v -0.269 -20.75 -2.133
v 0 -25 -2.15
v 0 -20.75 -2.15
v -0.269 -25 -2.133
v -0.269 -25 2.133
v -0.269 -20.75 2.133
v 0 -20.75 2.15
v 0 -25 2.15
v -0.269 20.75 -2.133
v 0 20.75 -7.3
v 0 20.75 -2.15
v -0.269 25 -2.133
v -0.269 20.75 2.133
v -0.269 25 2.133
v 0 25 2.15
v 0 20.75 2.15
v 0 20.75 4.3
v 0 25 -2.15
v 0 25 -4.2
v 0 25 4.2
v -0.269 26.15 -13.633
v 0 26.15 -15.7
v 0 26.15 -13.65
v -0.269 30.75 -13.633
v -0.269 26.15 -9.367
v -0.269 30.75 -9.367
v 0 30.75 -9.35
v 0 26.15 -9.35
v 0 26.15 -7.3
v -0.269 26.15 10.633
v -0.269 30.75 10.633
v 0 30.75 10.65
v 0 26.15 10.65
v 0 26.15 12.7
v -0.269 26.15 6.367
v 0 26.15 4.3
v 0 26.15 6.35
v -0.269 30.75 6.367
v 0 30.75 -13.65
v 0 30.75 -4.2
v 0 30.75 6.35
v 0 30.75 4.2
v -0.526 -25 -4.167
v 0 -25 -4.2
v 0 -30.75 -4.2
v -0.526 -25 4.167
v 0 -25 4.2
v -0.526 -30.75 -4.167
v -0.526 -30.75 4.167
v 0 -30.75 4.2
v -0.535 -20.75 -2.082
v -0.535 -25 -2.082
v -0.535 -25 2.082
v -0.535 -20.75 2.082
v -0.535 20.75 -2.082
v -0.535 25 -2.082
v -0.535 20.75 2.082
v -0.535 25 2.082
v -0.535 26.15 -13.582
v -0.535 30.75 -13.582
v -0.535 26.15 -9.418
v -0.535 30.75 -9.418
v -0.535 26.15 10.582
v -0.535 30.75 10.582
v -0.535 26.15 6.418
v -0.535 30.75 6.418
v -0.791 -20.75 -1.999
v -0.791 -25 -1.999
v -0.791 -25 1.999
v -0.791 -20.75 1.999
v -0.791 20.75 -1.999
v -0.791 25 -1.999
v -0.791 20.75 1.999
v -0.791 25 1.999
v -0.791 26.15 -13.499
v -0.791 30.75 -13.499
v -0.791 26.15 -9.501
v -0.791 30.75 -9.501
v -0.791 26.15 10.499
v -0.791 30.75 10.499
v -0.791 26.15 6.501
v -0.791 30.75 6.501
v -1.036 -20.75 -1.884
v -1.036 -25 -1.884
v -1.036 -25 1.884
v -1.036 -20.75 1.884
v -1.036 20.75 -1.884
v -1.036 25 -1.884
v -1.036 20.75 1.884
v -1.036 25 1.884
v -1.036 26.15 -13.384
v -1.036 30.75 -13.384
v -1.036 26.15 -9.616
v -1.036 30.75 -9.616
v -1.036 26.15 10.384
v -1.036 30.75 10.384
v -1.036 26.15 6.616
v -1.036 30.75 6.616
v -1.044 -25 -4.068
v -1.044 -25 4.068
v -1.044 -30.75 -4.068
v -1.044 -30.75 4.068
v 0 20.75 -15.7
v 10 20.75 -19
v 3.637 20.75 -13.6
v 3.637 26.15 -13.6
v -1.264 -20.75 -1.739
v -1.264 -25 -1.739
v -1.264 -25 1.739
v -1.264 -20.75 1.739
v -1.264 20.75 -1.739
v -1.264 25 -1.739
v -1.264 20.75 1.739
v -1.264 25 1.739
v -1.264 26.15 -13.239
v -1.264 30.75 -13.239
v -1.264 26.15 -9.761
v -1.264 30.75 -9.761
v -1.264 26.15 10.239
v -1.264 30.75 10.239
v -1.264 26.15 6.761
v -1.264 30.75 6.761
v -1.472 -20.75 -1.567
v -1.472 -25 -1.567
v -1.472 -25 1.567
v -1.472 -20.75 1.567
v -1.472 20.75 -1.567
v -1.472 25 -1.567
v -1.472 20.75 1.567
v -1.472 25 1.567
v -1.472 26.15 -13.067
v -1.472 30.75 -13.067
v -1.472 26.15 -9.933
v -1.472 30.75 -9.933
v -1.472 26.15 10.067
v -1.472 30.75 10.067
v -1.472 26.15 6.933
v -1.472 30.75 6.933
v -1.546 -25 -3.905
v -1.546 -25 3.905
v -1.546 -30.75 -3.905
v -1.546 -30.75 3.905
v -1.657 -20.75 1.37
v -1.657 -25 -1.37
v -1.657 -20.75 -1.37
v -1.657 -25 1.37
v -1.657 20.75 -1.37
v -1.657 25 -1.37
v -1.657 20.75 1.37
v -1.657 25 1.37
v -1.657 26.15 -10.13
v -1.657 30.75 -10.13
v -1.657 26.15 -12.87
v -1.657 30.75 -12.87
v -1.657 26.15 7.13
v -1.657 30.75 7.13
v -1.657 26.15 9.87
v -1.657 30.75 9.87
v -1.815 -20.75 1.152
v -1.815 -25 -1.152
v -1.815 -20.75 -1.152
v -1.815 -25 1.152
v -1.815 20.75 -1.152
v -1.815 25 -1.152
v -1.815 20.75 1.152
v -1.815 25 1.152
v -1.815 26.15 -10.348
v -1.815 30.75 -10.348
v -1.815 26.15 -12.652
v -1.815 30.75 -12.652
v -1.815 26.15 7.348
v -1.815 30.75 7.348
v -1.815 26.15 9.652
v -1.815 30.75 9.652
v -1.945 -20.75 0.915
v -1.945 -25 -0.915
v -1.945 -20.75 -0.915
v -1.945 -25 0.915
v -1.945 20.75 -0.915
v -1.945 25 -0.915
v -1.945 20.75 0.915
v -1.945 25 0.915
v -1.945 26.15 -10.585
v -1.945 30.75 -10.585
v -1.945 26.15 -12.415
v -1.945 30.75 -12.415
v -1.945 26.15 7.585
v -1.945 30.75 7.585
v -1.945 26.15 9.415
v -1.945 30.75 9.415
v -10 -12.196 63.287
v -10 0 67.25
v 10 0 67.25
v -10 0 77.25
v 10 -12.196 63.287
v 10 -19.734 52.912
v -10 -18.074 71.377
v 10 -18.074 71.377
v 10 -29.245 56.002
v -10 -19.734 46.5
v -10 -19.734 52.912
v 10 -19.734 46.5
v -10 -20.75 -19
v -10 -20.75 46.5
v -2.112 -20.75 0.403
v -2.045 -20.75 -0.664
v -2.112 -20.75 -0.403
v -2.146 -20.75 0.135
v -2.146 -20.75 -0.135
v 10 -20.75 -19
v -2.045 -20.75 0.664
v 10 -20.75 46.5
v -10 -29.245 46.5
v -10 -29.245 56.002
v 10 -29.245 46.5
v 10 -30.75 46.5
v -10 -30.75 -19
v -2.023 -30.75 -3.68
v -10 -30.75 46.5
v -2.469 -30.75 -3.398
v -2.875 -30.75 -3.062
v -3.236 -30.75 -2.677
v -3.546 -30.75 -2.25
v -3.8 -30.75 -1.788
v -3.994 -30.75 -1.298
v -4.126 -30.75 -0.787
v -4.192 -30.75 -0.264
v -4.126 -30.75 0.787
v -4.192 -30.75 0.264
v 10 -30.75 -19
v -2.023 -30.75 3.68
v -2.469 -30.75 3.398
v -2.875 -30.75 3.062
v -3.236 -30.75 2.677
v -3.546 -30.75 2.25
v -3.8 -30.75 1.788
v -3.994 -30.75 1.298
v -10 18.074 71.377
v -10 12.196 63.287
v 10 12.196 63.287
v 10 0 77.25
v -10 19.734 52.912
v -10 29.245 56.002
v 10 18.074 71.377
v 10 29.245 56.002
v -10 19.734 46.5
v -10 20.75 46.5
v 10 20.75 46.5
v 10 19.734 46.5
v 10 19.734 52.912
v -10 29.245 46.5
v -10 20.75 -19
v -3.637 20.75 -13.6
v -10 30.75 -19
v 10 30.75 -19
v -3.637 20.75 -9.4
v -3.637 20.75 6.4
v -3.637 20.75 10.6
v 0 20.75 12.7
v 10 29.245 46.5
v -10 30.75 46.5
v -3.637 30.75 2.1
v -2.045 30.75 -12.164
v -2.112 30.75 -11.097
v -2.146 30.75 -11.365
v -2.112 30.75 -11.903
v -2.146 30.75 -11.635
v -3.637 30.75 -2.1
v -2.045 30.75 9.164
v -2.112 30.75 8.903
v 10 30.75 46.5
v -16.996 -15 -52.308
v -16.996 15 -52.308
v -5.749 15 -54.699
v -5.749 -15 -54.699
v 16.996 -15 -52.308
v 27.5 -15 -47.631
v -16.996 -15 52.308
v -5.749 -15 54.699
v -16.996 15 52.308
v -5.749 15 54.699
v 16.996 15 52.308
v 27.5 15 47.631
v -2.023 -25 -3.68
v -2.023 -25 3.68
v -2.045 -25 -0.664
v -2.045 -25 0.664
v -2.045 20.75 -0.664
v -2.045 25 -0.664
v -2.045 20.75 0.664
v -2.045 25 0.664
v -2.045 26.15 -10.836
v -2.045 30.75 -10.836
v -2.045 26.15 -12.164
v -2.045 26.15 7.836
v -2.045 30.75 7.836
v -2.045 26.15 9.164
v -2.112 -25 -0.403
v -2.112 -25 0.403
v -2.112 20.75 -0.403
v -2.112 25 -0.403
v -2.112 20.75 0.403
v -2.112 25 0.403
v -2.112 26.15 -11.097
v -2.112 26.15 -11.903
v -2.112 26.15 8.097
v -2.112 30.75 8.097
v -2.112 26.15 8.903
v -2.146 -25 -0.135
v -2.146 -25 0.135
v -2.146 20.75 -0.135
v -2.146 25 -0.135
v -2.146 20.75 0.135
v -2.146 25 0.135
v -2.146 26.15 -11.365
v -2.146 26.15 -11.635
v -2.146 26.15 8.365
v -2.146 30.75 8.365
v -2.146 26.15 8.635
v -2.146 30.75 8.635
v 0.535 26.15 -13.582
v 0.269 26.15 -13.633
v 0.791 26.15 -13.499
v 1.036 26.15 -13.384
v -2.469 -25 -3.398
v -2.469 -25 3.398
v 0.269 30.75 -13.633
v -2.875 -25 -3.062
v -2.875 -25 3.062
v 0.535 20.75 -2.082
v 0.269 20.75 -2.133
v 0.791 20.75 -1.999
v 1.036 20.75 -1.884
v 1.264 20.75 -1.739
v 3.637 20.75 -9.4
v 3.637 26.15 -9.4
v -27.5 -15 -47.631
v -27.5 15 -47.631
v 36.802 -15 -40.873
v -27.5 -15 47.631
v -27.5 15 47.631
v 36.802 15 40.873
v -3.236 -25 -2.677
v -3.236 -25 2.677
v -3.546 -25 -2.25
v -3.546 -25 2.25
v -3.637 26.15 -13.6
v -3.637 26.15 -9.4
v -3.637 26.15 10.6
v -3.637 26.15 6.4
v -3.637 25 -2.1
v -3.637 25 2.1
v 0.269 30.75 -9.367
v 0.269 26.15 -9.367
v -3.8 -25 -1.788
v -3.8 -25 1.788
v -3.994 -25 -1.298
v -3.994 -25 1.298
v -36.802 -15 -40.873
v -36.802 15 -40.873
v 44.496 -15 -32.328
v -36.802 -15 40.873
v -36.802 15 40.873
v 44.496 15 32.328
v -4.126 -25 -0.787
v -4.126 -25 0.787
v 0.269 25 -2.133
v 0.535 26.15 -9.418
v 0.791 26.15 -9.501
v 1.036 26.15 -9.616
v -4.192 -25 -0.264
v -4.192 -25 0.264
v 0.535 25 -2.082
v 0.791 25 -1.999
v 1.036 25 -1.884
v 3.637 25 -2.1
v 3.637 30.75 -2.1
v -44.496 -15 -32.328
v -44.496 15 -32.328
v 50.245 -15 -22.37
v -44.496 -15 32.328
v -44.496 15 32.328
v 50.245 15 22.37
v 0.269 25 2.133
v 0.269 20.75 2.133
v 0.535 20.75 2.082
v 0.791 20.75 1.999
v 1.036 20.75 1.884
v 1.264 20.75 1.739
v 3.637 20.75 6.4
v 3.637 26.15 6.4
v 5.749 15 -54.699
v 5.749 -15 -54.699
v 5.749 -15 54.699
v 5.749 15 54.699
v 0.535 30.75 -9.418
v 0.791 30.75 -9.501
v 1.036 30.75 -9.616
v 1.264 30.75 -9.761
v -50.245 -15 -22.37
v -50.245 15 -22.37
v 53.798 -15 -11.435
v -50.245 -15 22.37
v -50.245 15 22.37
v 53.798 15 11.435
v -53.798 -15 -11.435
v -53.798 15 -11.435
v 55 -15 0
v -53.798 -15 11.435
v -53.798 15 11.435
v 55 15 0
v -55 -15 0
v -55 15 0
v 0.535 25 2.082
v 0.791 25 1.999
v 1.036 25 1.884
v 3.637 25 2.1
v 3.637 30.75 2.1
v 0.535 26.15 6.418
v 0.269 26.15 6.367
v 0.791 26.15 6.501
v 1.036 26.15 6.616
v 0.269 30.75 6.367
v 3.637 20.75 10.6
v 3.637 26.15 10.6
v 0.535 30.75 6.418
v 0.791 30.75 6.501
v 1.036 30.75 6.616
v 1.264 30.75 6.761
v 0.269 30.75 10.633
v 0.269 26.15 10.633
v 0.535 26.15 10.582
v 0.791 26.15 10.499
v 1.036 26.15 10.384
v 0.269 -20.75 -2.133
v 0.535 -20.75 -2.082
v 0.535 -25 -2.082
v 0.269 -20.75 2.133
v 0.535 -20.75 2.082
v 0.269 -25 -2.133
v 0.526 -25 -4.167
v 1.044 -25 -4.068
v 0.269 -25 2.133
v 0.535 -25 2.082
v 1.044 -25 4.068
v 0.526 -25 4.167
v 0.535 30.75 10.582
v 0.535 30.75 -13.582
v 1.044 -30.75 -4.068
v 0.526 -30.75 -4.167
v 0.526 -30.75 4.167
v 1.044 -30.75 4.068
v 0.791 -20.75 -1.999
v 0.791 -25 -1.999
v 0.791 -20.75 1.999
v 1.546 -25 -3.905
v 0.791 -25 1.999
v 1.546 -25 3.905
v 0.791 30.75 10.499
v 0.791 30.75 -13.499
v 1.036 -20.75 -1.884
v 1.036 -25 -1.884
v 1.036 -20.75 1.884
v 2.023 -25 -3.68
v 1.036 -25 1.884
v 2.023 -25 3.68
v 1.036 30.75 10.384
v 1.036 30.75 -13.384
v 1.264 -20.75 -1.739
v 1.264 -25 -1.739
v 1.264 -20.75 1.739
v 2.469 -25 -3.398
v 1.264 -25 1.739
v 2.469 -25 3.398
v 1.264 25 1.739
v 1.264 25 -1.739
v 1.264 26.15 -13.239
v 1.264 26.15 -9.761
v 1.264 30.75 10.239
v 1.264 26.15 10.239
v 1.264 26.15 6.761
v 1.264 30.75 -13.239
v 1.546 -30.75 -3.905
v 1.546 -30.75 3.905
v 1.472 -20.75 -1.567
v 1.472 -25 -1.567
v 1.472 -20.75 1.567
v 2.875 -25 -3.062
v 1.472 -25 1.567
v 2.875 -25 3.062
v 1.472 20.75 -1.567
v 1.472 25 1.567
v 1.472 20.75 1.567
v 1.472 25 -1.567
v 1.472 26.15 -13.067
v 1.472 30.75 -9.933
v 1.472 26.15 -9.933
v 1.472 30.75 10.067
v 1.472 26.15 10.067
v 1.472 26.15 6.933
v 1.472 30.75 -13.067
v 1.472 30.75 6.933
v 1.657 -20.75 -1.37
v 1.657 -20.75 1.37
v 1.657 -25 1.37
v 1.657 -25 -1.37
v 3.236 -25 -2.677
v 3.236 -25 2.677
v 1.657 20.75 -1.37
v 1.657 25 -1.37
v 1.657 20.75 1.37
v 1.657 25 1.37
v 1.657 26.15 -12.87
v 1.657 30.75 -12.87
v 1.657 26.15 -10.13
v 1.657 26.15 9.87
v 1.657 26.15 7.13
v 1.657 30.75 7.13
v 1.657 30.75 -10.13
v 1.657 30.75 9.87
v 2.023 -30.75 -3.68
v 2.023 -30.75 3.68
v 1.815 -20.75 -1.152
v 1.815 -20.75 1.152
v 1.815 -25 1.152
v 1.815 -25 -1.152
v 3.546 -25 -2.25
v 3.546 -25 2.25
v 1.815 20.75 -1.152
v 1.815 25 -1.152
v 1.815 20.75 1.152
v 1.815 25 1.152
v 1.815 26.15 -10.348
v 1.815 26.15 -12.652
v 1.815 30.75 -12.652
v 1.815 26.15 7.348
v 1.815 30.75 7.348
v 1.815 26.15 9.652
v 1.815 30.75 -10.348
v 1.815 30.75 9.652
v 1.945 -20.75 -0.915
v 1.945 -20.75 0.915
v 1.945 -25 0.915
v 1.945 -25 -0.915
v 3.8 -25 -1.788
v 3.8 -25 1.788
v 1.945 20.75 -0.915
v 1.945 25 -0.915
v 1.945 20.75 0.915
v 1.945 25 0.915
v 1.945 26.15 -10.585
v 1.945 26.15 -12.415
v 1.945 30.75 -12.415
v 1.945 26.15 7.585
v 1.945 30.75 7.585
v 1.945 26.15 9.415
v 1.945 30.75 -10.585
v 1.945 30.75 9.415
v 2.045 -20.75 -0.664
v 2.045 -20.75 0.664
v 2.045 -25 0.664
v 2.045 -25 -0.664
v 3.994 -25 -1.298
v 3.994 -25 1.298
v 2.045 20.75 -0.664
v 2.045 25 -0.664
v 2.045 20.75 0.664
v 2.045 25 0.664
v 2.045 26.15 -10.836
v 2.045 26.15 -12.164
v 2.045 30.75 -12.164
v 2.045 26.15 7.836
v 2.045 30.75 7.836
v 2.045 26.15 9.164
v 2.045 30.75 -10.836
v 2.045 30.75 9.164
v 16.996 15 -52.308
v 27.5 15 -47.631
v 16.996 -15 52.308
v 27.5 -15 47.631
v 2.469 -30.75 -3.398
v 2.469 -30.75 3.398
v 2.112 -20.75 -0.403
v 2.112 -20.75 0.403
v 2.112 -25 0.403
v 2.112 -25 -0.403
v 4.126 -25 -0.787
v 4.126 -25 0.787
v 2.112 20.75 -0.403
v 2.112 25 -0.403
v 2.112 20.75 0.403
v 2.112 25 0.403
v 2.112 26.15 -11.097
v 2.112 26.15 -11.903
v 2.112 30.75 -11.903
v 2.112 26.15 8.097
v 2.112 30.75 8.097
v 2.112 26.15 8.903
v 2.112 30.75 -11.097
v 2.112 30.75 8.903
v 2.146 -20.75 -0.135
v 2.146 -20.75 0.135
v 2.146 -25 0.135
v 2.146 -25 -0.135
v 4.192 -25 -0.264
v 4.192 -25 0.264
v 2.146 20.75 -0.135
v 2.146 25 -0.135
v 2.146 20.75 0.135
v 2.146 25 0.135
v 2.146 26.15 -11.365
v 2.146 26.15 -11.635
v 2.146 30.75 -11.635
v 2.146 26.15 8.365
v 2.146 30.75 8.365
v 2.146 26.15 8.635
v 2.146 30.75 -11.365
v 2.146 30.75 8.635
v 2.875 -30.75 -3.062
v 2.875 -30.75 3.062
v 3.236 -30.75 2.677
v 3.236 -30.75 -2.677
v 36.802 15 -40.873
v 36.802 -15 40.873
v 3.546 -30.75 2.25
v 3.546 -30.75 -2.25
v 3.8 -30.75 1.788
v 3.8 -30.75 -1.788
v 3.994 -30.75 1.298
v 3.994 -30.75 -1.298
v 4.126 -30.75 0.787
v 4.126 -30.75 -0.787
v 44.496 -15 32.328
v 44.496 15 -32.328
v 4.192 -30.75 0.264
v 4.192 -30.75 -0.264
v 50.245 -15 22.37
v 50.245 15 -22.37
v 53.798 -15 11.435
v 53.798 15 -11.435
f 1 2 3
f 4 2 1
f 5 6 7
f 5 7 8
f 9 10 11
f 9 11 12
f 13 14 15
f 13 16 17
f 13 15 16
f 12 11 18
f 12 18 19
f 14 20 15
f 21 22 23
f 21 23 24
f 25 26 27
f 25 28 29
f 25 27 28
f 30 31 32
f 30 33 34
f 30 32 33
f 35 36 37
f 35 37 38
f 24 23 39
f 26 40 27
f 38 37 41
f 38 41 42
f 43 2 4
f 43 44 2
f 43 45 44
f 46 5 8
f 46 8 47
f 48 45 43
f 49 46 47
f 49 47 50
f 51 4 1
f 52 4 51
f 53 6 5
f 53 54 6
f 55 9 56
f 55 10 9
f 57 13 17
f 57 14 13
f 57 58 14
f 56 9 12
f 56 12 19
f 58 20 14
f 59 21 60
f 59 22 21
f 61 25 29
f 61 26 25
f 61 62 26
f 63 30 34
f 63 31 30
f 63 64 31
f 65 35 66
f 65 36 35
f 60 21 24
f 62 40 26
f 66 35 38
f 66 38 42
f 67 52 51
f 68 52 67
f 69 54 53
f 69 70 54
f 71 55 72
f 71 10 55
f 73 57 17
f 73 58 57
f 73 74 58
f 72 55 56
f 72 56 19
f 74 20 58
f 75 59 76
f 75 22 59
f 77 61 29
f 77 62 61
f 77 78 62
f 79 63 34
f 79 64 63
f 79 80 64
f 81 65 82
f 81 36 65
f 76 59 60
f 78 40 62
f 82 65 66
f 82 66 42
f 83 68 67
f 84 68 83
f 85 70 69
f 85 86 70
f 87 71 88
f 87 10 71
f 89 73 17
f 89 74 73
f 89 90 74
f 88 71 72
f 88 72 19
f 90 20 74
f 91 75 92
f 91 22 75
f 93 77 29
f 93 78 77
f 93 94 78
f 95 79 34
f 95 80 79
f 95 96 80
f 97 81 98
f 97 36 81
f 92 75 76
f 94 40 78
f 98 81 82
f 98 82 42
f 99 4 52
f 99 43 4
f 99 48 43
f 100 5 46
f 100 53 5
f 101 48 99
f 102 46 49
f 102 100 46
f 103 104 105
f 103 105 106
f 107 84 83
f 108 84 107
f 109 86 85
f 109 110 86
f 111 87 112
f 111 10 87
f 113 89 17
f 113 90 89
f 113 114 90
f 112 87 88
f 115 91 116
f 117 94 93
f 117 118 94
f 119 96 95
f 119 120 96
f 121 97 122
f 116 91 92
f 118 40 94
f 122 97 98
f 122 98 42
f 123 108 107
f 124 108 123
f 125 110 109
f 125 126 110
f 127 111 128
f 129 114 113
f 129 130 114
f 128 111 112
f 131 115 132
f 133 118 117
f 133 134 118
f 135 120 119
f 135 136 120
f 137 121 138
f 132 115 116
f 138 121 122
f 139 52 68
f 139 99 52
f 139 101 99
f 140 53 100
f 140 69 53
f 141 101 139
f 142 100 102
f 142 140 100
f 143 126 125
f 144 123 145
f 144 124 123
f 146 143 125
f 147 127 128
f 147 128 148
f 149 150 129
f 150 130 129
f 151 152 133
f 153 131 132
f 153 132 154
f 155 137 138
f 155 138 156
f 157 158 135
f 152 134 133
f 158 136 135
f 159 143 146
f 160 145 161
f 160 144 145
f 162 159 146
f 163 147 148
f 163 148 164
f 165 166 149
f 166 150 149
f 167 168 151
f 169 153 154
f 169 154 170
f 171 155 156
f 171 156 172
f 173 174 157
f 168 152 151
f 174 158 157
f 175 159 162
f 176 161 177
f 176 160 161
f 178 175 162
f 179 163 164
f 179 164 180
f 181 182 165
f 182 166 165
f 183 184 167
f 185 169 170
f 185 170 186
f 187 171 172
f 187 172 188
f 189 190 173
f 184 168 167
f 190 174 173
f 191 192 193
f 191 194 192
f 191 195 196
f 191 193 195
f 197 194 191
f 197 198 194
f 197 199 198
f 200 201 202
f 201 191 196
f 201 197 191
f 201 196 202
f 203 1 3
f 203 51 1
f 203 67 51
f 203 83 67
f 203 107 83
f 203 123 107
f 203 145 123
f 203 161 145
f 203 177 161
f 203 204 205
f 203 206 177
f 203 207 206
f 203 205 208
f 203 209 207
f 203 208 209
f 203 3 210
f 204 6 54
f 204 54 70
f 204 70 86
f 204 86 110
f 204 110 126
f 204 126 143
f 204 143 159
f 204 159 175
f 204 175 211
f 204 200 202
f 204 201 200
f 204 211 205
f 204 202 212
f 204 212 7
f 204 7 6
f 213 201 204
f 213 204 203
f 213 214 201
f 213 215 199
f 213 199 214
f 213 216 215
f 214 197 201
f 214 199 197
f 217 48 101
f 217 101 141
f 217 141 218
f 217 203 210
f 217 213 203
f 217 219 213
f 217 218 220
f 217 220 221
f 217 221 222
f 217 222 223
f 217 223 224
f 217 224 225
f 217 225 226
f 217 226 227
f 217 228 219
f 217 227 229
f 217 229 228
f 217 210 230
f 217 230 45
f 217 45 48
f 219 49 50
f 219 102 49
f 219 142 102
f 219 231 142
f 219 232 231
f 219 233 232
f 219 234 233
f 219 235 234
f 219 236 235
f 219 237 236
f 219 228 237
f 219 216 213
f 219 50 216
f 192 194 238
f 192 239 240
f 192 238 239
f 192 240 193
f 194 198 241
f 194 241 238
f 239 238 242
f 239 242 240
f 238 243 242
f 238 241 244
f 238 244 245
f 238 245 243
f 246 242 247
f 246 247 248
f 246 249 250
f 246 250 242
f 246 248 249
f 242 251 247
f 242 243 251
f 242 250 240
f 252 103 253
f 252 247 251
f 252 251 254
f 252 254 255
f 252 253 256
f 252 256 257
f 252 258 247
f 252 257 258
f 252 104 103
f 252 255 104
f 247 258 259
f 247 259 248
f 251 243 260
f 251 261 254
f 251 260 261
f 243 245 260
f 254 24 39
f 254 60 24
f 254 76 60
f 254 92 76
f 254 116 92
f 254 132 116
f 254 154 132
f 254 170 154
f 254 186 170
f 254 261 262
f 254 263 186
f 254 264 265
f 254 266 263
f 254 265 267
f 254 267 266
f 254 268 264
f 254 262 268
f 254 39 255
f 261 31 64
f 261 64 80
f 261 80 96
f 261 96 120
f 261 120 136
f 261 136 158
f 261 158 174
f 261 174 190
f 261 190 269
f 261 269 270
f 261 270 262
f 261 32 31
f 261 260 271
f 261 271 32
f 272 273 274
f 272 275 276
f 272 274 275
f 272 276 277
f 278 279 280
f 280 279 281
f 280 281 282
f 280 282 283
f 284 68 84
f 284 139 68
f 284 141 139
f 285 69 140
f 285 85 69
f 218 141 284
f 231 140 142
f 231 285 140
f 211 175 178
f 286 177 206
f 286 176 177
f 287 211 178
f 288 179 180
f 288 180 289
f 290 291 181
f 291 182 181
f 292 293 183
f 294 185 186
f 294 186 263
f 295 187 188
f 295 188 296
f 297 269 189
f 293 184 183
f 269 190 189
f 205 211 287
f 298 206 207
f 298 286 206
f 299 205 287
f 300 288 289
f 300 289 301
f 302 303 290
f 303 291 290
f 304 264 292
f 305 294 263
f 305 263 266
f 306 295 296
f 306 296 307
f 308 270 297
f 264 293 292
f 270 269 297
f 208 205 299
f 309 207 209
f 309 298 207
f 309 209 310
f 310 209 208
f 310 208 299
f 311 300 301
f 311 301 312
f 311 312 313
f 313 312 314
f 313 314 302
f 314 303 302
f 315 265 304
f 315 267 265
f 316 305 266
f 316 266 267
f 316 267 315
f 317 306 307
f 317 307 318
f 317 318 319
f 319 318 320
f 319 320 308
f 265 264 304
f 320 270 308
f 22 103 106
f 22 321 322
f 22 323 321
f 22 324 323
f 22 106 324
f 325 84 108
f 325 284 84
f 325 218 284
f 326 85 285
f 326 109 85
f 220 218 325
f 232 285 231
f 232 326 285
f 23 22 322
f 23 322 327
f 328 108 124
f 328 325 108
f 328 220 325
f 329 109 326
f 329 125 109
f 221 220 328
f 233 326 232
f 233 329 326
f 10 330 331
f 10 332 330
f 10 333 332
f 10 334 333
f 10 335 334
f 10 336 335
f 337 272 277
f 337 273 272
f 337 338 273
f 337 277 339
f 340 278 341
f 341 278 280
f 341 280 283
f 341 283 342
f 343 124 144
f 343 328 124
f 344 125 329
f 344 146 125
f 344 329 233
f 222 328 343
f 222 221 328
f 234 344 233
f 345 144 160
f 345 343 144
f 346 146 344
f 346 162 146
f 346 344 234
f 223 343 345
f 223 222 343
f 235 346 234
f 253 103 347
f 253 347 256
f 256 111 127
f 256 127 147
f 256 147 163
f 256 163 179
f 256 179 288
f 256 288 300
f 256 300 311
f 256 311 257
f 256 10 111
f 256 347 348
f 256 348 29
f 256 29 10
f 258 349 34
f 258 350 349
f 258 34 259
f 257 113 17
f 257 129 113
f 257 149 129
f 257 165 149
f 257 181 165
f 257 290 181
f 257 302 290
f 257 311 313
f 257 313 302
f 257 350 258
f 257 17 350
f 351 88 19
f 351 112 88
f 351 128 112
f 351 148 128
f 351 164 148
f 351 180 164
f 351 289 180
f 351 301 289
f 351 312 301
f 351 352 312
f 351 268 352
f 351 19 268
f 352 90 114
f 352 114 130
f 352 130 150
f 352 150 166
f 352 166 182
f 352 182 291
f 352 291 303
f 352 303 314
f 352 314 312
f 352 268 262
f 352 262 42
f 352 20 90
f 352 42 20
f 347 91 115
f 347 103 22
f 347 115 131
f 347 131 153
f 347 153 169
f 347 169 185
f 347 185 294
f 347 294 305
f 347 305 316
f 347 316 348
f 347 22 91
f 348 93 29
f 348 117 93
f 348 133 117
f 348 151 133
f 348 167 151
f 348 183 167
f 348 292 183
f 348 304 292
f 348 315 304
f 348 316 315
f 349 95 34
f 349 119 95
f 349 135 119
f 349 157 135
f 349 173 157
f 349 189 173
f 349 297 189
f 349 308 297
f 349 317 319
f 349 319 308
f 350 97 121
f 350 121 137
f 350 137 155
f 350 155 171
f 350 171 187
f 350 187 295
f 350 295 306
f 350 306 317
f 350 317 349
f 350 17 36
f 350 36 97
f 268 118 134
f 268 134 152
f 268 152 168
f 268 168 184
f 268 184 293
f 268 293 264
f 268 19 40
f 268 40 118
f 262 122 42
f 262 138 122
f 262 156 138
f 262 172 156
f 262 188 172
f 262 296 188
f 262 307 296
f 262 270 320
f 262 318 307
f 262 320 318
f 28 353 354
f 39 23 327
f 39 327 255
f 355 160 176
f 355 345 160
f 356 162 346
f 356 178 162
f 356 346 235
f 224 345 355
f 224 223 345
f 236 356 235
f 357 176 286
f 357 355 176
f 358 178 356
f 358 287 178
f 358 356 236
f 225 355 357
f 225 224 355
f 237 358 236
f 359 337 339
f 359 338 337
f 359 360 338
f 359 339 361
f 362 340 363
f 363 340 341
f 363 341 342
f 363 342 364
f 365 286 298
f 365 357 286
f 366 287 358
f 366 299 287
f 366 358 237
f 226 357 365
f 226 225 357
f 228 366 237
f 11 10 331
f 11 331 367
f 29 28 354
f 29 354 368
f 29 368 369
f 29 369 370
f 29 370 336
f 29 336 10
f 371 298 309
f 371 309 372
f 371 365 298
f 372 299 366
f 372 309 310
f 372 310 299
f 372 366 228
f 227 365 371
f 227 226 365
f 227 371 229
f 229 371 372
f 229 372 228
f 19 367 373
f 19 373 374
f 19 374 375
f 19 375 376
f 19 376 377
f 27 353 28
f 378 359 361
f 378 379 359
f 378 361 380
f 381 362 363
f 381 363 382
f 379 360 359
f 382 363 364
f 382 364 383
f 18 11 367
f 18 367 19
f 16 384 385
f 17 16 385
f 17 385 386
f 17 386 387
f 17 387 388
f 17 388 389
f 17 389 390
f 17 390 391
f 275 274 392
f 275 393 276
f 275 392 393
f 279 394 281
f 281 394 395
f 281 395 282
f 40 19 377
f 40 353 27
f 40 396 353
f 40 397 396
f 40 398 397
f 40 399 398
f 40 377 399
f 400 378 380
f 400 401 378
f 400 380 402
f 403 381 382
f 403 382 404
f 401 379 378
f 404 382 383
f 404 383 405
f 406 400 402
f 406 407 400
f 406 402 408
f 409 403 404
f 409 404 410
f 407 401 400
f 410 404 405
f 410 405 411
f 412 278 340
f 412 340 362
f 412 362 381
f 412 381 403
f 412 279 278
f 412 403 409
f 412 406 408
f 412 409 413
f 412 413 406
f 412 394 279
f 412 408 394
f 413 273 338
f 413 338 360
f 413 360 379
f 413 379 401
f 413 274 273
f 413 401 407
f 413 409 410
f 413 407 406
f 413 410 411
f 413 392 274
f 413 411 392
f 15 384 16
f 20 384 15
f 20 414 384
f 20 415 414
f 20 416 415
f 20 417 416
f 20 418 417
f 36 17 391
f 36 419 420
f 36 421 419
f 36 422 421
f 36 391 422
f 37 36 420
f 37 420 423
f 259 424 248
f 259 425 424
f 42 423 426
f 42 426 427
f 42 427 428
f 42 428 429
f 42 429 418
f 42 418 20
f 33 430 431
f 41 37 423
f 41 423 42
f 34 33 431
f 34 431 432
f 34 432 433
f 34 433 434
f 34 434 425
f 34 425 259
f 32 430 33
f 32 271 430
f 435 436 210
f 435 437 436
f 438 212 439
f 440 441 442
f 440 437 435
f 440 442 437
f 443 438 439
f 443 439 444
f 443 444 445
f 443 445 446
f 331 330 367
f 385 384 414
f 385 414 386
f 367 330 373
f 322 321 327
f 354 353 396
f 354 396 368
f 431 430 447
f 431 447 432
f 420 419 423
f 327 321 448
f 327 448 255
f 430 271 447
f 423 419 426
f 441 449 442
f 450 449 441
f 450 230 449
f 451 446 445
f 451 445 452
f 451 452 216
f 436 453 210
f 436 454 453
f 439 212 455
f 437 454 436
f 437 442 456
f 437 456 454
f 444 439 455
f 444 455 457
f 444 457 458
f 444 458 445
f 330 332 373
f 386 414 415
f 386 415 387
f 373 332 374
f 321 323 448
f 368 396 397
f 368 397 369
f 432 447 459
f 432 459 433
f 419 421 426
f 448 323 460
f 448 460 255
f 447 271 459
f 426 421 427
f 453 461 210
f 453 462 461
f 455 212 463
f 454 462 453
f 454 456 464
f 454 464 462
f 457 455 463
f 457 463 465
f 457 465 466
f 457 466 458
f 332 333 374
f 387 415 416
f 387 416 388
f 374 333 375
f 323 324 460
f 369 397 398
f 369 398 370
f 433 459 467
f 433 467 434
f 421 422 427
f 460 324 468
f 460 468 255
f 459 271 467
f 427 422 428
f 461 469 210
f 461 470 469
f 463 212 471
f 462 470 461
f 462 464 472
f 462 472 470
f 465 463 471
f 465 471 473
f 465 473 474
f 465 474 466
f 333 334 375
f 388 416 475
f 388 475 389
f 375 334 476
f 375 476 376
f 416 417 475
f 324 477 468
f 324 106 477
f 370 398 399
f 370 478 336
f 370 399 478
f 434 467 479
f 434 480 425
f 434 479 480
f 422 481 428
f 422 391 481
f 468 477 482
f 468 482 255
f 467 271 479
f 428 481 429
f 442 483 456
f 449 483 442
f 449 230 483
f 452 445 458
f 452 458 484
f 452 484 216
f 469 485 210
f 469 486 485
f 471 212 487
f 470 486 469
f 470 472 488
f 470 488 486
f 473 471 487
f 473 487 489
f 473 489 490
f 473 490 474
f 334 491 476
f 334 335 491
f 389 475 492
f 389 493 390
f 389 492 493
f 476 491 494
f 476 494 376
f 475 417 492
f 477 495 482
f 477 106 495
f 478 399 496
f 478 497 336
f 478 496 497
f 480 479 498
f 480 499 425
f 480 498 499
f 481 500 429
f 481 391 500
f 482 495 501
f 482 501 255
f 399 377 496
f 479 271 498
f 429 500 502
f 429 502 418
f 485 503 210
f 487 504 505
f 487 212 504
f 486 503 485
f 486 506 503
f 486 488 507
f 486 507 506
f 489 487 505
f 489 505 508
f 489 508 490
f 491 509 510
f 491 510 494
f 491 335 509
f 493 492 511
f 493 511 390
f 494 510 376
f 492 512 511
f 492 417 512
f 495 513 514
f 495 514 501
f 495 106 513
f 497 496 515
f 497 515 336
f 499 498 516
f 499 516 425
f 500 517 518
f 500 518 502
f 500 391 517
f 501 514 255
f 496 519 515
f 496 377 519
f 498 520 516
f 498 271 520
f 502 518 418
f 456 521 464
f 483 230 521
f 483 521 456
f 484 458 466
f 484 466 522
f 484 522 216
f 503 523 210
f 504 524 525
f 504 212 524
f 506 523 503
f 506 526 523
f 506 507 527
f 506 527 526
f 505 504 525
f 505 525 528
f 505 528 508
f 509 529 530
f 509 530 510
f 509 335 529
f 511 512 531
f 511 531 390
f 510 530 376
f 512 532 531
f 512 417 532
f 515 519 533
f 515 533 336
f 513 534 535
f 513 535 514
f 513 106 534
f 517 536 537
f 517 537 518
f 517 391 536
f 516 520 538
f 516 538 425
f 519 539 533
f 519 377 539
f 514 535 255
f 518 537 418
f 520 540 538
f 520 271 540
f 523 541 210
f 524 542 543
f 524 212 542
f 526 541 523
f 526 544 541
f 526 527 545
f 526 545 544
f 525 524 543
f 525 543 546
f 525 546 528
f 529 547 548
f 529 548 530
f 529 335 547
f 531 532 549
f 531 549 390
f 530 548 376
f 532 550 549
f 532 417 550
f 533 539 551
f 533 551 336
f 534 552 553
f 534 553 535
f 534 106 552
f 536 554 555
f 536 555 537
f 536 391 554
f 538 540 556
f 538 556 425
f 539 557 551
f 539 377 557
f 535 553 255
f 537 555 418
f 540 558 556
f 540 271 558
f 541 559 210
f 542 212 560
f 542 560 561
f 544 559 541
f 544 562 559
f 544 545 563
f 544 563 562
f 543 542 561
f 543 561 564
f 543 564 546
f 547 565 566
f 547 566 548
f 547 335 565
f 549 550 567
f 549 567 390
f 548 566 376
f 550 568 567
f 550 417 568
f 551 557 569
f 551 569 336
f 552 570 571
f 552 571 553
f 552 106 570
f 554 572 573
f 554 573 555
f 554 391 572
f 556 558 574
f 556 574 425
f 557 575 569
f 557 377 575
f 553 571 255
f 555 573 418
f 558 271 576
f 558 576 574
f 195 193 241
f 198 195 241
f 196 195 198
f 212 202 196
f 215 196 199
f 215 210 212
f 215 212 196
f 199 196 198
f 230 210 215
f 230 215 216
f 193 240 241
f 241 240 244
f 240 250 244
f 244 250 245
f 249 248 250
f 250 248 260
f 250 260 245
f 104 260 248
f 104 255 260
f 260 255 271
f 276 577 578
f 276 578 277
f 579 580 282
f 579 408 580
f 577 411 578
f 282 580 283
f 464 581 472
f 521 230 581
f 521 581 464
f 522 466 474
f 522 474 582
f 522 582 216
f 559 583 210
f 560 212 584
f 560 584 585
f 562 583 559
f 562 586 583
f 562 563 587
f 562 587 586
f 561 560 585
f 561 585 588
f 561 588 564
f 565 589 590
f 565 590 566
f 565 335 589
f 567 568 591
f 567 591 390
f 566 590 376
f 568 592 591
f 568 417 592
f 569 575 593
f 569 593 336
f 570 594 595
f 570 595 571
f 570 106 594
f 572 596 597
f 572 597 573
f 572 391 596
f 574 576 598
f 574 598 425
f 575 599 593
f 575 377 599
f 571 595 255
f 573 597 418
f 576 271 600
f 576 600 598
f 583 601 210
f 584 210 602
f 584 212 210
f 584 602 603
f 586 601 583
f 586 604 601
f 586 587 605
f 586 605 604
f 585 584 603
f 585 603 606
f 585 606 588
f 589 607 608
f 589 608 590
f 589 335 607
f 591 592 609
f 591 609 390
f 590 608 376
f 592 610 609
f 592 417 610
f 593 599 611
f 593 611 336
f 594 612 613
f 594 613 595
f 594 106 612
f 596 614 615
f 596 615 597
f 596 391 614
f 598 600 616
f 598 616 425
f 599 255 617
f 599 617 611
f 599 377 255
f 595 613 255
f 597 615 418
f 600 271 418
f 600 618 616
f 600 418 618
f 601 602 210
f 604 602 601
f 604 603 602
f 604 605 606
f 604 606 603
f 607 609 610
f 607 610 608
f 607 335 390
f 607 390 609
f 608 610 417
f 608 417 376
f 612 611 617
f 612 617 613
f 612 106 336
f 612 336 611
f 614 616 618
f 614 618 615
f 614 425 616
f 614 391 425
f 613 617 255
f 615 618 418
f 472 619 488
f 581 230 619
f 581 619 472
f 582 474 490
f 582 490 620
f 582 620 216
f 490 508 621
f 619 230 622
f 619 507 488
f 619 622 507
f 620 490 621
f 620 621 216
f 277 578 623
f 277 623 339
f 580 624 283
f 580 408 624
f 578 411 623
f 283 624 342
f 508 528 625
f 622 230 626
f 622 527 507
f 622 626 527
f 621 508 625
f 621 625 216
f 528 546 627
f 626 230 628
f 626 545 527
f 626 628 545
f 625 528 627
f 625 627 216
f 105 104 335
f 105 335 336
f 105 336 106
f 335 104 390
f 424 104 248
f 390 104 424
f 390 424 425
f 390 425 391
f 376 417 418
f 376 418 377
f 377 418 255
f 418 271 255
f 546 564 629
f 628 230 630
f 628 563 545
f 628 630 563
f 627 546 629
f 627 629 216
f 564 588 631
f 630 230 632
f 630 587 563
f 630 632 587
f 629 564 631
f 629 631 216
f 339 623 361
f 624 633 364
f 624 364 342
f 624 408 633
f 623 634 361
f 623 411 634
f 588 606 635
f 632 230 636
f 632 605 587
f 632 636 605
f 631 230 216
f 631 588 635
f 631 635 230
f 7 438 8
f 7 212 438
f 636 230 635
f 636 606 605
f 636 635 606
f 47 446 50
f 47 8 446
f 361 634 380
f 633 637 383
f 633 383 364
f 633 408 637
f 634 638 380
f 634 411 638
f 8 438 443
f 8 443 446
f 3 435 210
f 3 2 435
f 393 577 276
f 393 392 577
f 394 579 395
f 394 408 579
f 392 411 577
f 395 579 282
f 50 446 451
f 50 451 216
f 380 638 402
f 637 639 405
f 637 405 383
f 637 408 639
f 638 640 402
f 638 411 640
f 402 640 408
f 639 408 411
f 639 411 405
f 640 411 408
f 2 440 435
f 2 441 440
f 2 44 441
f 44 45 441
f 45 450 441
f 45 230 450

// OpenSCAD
//VIDLICE PRO ZADNI KOLO

include <../parameters.scad>

cylinder_2_thickness = 1.5;

screw_length = 55;
fork_thickness = 20;
fork_width = 10;
fork_hole_diameter = 10;
fork_lenght = 105/2;
fork_length_overlap = 13;       // prodlouzeni smerem dolu

pipe_diameter = tube_for_undercarriage_outer_diameter;
pipe_holder_length = 0;
pipe_holder_thickness = pipe_diameter/2+3;

pipe_holder_distance = 20;
pipe_holder1_pos = 38;
pipe_holder2_pos = pipe_holder1_pos + pipe_holder_distance;
pipe_holder_space =3;


module 888_2021(draft = true){

rotate([0, 90, 0]) translate([-fork_lenght+6, 0, -fork_thickness/2])
    difference() {
      union () {
        difference() {
            union () {
                cylinder(h=fork_thickness, d=2*fork_width+fork_wheel_width, $fn=draft? 10 : 120);

                translate([0,fork_wheel_width/2,0])
                    cube([fork_lenght+fork_length_overlap, fork_width, fork_thickness]);

                translate ([0,-(fork_wheel_width/2+fork_width),0])
                    cube([fork_lenght+fork_length_overlap, fork_width, fork_thickness]);

                // kostka pro diry pro drzak motoru
                //translate([fork_lenght - 75 - 5, -fork_wheel_width/2 - fork_thickness/2, 0])
                //    cube([10, fork_wheel_width+fork_thickness, fork_thickness]);
            }

            translate([0, 0, -10])
                cylinder( h=fork_thickness+20, d=fork_wheel_width, $fn=draft? 10 : 100);

            translate([0,-(fork_wheel_width/2),-10])
                cube ([2*fork_width+fork_wheel_width+20,fork_wheel_width,fork_thickness+20 ]);

            // dira pro pripevneni paky pro motor
            //translate([fork_lenght - 75, -fork_wheel_width/3, fork_thickness/2])
            //    rotate([90, 0, 0])
            //        cylinder(d = M3_screw_diameter, h = 30, $fn = 60);

            //translate([fork_lenght - 75, fork_wheel_width/3+30, fork_thickness/2])
            //    rotate([90, 0, 0])
            //        cylinder(d = M3_screw_diameter, h = 30, $fn = 60);

            //translate([fork_lenght - 75, 0, fork_thickness/2])
            //    rotate([90, 0, 0])
            //        cylinder(d = M3_nut_diameter, h = fork_wheel_width, $fn = 60, center = true);


            // Diry pro sroub smerem nahoru pro namotani gumicek
            //translate([-20, 0, fork_thickness/2])
            //    rotate([0, -90, 0])
            //        cylinder(d = M3_screw_diameter, h = 30, $fn = 60);

            //translate([-28, 0, fork_thickness/2])
            //    rotate([0, -90, 0])
            //        cylinder(d = M3_nut_diameter, h = 30, $fn = 6);

            //translate([-28+35, 0, fork_thickness/2])
            //    rotate([0, -90, 0])
            //        cylinder(d = M3_nut_diameter, h = 30, $fn = 60);

            //osa M4
            rotate ([90,0,0,]) {
                translate([fork_lenght-6, fork_thickness/2, 0])
                  cylinder (h=2*fork_width+fork_wheel_width+20, d=M4_screw_diameter, center=true, $fn=50);

                translate([fork_lenght-6, fork_thickness/2, -30 - (screw_length-5)/2])
                  cylinder (h=30, d=M4_nut_diameter, $fn=6);

                translate([fork_lenght-6, fork_thickness/2,  (screw_length-5)/2])
                  cylinder (h=30, d=M4_nut_diameter, $fn=50);
            }
        }

        //drzaky trubky - srouby M3
        /* difference() {
            translate([pipe_holder1_pos,fork_wheel_width/2, 0])
              cube ([pipe_holder_length, pipe_holder_thickness + fork_width, fork_thickness]);
            rotate ([0,90,0])
              translate([-fork_thickness/2, fork_wheel_width/2+fork_width+pipe_diameter/2+pipe_holder_space, 0])
                cylinder(h=fork_lenght*2, d=pipe_diameter, $fn=50, center = true);
        }

        difference() {
            translate([pipe_holder2_pos,fork_wheel_width/2+fork_width, 0])
              cube ([pipe_holder_length, pipe_holder_thickness, fork_thickness]);
            rotate ([0,90,0])
              translate([-fork_thickness/2, fork_wheel_width/2+fork_width+pipe_diameter/2+pipe_holder_space, 0])
                cylinder(h=fork_lenght*2, d=pipe_diameter, $fn=50, center = true);
        } */
      }
       rotate ([90,0,0,]) {
          translate([pipe_holder2_pos+pipe_holder_length/2, fork_thickness/2, -fork_wheel_width])
            cylinder (h=fork_wheel_width, d=M4_screw_diameter, $fn=50);

          translate([pipe_holder2_pos+pipe_holder_length/2, fork_thickness/2, -(0.5*fork_wheel_width+M3_nut_height*2)])
            cylinder (h=fork_width, d=M4_nut_diameter, $fn=6);

          translate([pipe_holder1_pos+pipe_holder_length/2, fork_thickness/2, -fork_wheel_width])
            cylinder (h=fork_wheel_width, d=M4_screw_diameter, $fn=50);

          translate([pipe_holder1_pos+pipe_holder_length/2, fork_thickness/2, -(0.5*fork_wheel_width+M3_nut_height*2)])
            cylinder (h=fork_width, d=M4_nut_diameter, $fn=6);
      }
    }
}

module motor_holder(){
    motor_distance = 35;
    motor_offset = 12;
    tail_distance = 50;
    thickness = 4+3;

    shaft_width = 13;
    screw_radius = 25/2;
    encoder_radius = 19.05/2;
    engine_radius = 25/2;

    encoder_width = 30;
    encoder_length = 36;
    encoder_round = 17;
    encoder_wall = 3;

    difference(){
        union(){
            hull(){
                translate([0, -15, 0])
                    cube([motor_distance/2, 30, thickness]);
                translate([-tail_distance, 0, 0])
                    cylinder(d = 10, h = thickness);
                translate([motor_distance, 0, 0])
                    cylinder(d = 35, h = thickness);
            }

            translate([motor_distance, 0, 0])
                hull(){
                    intersection(){
                        translate([0, 0, 0])
                            cylinder(r = encoder_round+encoder_wall, h = thickness + motor_offset, $fn = 60);
                        translate([-25, -encoder_width/2-encoder_wall, 0])
                            cube([50, encoder_width+encoder_wall*2, motor_offset+thickness]);
                    }
                    translate([23+encoder_wall, -encoder_width/2-encoder_wall, 0])
                        cube([1, encoder_width+encoder_wall*2, thickness+motor_offset]);
                }

            //cylinder( d = 10, h = 10);

            translate([-tail_distance, 0, 0])
                cylinder(d = 10, h = 10);

        }

    cylinder(d = M3_screw_diameter, h = 20, $fn = 50);

    translate([-tail_distance, 0, 0])
        cylinder(d = M3_screw_diameter, h = 30, $fn = 50);

    translate([motor_distance, 0, 0]){


    	translate([0, 0, motor_offset+layer])
            cylinder(thickness + 10, d = shaft_width, $fn = 50);

        %translate([0, 0, thickness + motor_offset + global_clearance]) cylinder(h = 36, d = 30);

        for(i = [0:3]) {
    		rotate([0, 0, i * 90 + 45])
    		translate([screw_radius, 0, - 1])
    		union() {
    			cylinder(thickness + 2, d = M3_screw_diameter, $fn = 60);
    			//translate([0, 0, thickness - 1.5])
    			cylinder(thickness, d = M3_nut_diameter + 1);
    		}
    	}

    	//nut holes

        // pripevneni motoru
    	translate([engine_radius, 0, motor_offset])
    	union() {
    		translate([0, 0, M3_screw_head_height+global_clearance+layer]) cylinder(thickness + 2, d = M3_screw_diameter, $fn = 30);
    		translate([0, 0, 0]) cylinder(d = M3_nut_diameter, h = M3_screw_head_height+global_clearance, $fn = 60);
    	}
    	translate([-engine_radius, 0, motor_offset])
    	union() {
    		translate([0, 0, M3_screw_head_height+global_clearance+layer]) cylinder(thickness + 2, d = M3_screw_diameter, $fn = 30);
    		translate([0, 0, 0]) cylinder(d = M3_nut_diameter, h = M3_screw_head_height+global_clearance, $fn = 60);
    	}
    	translate([0, encoder_radius, motor_offset])

        // pripevneni enkoderu
        union() {
    		cylinder(thickness + 2, d = M3_screw_diameter, $fn = 30);
    		rotate([0, 0, 0])
    		translate([0, 0, 3]) cylinder(d = M3_nut_diameter, h = 10, $fn = 6);
    	}
    	translate([0, - encoder_radius, motor_offset])
    	union() {
    		cylinder(thickness + 2, d = M3_screw_diameter, $fn = 30);
    		rotate([0, 0, 0])
    		translate([0, 0,  3]) cylinder(d = M3_nut_diameter, h = 10, $fn = 6);
    	}
        translate([0, 0, -0.1])
        hull(){
            intersection(){
                translate([0, 0, 0])
                    cylinder(r = encoder_round, h = motor_offset, $fn = 60);
                translate([-25, -encoder_width/2, 0])
                    cube([50, encoder_width, motor_offset]);
            }
            translate([23, -encoder_width/2, 0])
                cube([1, encoder_width, motor_offset]);
        }
    }
}
}

module 888_2021_drill(){
    difference(){
        cube([25, 25, pipe_holder_distance+pipe_holder_length], center = true);

        cylinder(d = tube_for_undercarriage_outer_diameter, h = pipe_holder_distance+20+global_clearance, $fn = 80, center = true);

        translate([0, 0, pipe_holder_distance/2])
            rotate([90, 0, 0])
                cylinder(d = M3_screw_diameter, h = 30, center = true, $fn = 80);

        translate([0, 0, -pipe_holder_distance/2])
            rotate([90, 0, 0])
                cylinder(d = M3_screw_diameter, h = 30, center = true, $fn = 80);
    }
}

888_2021();

rotate([90, 0, 0]) cylinder(d = 110, h = 30, center = true);
//translate([49, 0, 50]) rotate([90, 0, 0]) cylinder(d = 30, h = 36, center = true);

//888_2021_drill();

//translate([0, 40, 70]) rotate([90, 0, 0]) motor_holder();
